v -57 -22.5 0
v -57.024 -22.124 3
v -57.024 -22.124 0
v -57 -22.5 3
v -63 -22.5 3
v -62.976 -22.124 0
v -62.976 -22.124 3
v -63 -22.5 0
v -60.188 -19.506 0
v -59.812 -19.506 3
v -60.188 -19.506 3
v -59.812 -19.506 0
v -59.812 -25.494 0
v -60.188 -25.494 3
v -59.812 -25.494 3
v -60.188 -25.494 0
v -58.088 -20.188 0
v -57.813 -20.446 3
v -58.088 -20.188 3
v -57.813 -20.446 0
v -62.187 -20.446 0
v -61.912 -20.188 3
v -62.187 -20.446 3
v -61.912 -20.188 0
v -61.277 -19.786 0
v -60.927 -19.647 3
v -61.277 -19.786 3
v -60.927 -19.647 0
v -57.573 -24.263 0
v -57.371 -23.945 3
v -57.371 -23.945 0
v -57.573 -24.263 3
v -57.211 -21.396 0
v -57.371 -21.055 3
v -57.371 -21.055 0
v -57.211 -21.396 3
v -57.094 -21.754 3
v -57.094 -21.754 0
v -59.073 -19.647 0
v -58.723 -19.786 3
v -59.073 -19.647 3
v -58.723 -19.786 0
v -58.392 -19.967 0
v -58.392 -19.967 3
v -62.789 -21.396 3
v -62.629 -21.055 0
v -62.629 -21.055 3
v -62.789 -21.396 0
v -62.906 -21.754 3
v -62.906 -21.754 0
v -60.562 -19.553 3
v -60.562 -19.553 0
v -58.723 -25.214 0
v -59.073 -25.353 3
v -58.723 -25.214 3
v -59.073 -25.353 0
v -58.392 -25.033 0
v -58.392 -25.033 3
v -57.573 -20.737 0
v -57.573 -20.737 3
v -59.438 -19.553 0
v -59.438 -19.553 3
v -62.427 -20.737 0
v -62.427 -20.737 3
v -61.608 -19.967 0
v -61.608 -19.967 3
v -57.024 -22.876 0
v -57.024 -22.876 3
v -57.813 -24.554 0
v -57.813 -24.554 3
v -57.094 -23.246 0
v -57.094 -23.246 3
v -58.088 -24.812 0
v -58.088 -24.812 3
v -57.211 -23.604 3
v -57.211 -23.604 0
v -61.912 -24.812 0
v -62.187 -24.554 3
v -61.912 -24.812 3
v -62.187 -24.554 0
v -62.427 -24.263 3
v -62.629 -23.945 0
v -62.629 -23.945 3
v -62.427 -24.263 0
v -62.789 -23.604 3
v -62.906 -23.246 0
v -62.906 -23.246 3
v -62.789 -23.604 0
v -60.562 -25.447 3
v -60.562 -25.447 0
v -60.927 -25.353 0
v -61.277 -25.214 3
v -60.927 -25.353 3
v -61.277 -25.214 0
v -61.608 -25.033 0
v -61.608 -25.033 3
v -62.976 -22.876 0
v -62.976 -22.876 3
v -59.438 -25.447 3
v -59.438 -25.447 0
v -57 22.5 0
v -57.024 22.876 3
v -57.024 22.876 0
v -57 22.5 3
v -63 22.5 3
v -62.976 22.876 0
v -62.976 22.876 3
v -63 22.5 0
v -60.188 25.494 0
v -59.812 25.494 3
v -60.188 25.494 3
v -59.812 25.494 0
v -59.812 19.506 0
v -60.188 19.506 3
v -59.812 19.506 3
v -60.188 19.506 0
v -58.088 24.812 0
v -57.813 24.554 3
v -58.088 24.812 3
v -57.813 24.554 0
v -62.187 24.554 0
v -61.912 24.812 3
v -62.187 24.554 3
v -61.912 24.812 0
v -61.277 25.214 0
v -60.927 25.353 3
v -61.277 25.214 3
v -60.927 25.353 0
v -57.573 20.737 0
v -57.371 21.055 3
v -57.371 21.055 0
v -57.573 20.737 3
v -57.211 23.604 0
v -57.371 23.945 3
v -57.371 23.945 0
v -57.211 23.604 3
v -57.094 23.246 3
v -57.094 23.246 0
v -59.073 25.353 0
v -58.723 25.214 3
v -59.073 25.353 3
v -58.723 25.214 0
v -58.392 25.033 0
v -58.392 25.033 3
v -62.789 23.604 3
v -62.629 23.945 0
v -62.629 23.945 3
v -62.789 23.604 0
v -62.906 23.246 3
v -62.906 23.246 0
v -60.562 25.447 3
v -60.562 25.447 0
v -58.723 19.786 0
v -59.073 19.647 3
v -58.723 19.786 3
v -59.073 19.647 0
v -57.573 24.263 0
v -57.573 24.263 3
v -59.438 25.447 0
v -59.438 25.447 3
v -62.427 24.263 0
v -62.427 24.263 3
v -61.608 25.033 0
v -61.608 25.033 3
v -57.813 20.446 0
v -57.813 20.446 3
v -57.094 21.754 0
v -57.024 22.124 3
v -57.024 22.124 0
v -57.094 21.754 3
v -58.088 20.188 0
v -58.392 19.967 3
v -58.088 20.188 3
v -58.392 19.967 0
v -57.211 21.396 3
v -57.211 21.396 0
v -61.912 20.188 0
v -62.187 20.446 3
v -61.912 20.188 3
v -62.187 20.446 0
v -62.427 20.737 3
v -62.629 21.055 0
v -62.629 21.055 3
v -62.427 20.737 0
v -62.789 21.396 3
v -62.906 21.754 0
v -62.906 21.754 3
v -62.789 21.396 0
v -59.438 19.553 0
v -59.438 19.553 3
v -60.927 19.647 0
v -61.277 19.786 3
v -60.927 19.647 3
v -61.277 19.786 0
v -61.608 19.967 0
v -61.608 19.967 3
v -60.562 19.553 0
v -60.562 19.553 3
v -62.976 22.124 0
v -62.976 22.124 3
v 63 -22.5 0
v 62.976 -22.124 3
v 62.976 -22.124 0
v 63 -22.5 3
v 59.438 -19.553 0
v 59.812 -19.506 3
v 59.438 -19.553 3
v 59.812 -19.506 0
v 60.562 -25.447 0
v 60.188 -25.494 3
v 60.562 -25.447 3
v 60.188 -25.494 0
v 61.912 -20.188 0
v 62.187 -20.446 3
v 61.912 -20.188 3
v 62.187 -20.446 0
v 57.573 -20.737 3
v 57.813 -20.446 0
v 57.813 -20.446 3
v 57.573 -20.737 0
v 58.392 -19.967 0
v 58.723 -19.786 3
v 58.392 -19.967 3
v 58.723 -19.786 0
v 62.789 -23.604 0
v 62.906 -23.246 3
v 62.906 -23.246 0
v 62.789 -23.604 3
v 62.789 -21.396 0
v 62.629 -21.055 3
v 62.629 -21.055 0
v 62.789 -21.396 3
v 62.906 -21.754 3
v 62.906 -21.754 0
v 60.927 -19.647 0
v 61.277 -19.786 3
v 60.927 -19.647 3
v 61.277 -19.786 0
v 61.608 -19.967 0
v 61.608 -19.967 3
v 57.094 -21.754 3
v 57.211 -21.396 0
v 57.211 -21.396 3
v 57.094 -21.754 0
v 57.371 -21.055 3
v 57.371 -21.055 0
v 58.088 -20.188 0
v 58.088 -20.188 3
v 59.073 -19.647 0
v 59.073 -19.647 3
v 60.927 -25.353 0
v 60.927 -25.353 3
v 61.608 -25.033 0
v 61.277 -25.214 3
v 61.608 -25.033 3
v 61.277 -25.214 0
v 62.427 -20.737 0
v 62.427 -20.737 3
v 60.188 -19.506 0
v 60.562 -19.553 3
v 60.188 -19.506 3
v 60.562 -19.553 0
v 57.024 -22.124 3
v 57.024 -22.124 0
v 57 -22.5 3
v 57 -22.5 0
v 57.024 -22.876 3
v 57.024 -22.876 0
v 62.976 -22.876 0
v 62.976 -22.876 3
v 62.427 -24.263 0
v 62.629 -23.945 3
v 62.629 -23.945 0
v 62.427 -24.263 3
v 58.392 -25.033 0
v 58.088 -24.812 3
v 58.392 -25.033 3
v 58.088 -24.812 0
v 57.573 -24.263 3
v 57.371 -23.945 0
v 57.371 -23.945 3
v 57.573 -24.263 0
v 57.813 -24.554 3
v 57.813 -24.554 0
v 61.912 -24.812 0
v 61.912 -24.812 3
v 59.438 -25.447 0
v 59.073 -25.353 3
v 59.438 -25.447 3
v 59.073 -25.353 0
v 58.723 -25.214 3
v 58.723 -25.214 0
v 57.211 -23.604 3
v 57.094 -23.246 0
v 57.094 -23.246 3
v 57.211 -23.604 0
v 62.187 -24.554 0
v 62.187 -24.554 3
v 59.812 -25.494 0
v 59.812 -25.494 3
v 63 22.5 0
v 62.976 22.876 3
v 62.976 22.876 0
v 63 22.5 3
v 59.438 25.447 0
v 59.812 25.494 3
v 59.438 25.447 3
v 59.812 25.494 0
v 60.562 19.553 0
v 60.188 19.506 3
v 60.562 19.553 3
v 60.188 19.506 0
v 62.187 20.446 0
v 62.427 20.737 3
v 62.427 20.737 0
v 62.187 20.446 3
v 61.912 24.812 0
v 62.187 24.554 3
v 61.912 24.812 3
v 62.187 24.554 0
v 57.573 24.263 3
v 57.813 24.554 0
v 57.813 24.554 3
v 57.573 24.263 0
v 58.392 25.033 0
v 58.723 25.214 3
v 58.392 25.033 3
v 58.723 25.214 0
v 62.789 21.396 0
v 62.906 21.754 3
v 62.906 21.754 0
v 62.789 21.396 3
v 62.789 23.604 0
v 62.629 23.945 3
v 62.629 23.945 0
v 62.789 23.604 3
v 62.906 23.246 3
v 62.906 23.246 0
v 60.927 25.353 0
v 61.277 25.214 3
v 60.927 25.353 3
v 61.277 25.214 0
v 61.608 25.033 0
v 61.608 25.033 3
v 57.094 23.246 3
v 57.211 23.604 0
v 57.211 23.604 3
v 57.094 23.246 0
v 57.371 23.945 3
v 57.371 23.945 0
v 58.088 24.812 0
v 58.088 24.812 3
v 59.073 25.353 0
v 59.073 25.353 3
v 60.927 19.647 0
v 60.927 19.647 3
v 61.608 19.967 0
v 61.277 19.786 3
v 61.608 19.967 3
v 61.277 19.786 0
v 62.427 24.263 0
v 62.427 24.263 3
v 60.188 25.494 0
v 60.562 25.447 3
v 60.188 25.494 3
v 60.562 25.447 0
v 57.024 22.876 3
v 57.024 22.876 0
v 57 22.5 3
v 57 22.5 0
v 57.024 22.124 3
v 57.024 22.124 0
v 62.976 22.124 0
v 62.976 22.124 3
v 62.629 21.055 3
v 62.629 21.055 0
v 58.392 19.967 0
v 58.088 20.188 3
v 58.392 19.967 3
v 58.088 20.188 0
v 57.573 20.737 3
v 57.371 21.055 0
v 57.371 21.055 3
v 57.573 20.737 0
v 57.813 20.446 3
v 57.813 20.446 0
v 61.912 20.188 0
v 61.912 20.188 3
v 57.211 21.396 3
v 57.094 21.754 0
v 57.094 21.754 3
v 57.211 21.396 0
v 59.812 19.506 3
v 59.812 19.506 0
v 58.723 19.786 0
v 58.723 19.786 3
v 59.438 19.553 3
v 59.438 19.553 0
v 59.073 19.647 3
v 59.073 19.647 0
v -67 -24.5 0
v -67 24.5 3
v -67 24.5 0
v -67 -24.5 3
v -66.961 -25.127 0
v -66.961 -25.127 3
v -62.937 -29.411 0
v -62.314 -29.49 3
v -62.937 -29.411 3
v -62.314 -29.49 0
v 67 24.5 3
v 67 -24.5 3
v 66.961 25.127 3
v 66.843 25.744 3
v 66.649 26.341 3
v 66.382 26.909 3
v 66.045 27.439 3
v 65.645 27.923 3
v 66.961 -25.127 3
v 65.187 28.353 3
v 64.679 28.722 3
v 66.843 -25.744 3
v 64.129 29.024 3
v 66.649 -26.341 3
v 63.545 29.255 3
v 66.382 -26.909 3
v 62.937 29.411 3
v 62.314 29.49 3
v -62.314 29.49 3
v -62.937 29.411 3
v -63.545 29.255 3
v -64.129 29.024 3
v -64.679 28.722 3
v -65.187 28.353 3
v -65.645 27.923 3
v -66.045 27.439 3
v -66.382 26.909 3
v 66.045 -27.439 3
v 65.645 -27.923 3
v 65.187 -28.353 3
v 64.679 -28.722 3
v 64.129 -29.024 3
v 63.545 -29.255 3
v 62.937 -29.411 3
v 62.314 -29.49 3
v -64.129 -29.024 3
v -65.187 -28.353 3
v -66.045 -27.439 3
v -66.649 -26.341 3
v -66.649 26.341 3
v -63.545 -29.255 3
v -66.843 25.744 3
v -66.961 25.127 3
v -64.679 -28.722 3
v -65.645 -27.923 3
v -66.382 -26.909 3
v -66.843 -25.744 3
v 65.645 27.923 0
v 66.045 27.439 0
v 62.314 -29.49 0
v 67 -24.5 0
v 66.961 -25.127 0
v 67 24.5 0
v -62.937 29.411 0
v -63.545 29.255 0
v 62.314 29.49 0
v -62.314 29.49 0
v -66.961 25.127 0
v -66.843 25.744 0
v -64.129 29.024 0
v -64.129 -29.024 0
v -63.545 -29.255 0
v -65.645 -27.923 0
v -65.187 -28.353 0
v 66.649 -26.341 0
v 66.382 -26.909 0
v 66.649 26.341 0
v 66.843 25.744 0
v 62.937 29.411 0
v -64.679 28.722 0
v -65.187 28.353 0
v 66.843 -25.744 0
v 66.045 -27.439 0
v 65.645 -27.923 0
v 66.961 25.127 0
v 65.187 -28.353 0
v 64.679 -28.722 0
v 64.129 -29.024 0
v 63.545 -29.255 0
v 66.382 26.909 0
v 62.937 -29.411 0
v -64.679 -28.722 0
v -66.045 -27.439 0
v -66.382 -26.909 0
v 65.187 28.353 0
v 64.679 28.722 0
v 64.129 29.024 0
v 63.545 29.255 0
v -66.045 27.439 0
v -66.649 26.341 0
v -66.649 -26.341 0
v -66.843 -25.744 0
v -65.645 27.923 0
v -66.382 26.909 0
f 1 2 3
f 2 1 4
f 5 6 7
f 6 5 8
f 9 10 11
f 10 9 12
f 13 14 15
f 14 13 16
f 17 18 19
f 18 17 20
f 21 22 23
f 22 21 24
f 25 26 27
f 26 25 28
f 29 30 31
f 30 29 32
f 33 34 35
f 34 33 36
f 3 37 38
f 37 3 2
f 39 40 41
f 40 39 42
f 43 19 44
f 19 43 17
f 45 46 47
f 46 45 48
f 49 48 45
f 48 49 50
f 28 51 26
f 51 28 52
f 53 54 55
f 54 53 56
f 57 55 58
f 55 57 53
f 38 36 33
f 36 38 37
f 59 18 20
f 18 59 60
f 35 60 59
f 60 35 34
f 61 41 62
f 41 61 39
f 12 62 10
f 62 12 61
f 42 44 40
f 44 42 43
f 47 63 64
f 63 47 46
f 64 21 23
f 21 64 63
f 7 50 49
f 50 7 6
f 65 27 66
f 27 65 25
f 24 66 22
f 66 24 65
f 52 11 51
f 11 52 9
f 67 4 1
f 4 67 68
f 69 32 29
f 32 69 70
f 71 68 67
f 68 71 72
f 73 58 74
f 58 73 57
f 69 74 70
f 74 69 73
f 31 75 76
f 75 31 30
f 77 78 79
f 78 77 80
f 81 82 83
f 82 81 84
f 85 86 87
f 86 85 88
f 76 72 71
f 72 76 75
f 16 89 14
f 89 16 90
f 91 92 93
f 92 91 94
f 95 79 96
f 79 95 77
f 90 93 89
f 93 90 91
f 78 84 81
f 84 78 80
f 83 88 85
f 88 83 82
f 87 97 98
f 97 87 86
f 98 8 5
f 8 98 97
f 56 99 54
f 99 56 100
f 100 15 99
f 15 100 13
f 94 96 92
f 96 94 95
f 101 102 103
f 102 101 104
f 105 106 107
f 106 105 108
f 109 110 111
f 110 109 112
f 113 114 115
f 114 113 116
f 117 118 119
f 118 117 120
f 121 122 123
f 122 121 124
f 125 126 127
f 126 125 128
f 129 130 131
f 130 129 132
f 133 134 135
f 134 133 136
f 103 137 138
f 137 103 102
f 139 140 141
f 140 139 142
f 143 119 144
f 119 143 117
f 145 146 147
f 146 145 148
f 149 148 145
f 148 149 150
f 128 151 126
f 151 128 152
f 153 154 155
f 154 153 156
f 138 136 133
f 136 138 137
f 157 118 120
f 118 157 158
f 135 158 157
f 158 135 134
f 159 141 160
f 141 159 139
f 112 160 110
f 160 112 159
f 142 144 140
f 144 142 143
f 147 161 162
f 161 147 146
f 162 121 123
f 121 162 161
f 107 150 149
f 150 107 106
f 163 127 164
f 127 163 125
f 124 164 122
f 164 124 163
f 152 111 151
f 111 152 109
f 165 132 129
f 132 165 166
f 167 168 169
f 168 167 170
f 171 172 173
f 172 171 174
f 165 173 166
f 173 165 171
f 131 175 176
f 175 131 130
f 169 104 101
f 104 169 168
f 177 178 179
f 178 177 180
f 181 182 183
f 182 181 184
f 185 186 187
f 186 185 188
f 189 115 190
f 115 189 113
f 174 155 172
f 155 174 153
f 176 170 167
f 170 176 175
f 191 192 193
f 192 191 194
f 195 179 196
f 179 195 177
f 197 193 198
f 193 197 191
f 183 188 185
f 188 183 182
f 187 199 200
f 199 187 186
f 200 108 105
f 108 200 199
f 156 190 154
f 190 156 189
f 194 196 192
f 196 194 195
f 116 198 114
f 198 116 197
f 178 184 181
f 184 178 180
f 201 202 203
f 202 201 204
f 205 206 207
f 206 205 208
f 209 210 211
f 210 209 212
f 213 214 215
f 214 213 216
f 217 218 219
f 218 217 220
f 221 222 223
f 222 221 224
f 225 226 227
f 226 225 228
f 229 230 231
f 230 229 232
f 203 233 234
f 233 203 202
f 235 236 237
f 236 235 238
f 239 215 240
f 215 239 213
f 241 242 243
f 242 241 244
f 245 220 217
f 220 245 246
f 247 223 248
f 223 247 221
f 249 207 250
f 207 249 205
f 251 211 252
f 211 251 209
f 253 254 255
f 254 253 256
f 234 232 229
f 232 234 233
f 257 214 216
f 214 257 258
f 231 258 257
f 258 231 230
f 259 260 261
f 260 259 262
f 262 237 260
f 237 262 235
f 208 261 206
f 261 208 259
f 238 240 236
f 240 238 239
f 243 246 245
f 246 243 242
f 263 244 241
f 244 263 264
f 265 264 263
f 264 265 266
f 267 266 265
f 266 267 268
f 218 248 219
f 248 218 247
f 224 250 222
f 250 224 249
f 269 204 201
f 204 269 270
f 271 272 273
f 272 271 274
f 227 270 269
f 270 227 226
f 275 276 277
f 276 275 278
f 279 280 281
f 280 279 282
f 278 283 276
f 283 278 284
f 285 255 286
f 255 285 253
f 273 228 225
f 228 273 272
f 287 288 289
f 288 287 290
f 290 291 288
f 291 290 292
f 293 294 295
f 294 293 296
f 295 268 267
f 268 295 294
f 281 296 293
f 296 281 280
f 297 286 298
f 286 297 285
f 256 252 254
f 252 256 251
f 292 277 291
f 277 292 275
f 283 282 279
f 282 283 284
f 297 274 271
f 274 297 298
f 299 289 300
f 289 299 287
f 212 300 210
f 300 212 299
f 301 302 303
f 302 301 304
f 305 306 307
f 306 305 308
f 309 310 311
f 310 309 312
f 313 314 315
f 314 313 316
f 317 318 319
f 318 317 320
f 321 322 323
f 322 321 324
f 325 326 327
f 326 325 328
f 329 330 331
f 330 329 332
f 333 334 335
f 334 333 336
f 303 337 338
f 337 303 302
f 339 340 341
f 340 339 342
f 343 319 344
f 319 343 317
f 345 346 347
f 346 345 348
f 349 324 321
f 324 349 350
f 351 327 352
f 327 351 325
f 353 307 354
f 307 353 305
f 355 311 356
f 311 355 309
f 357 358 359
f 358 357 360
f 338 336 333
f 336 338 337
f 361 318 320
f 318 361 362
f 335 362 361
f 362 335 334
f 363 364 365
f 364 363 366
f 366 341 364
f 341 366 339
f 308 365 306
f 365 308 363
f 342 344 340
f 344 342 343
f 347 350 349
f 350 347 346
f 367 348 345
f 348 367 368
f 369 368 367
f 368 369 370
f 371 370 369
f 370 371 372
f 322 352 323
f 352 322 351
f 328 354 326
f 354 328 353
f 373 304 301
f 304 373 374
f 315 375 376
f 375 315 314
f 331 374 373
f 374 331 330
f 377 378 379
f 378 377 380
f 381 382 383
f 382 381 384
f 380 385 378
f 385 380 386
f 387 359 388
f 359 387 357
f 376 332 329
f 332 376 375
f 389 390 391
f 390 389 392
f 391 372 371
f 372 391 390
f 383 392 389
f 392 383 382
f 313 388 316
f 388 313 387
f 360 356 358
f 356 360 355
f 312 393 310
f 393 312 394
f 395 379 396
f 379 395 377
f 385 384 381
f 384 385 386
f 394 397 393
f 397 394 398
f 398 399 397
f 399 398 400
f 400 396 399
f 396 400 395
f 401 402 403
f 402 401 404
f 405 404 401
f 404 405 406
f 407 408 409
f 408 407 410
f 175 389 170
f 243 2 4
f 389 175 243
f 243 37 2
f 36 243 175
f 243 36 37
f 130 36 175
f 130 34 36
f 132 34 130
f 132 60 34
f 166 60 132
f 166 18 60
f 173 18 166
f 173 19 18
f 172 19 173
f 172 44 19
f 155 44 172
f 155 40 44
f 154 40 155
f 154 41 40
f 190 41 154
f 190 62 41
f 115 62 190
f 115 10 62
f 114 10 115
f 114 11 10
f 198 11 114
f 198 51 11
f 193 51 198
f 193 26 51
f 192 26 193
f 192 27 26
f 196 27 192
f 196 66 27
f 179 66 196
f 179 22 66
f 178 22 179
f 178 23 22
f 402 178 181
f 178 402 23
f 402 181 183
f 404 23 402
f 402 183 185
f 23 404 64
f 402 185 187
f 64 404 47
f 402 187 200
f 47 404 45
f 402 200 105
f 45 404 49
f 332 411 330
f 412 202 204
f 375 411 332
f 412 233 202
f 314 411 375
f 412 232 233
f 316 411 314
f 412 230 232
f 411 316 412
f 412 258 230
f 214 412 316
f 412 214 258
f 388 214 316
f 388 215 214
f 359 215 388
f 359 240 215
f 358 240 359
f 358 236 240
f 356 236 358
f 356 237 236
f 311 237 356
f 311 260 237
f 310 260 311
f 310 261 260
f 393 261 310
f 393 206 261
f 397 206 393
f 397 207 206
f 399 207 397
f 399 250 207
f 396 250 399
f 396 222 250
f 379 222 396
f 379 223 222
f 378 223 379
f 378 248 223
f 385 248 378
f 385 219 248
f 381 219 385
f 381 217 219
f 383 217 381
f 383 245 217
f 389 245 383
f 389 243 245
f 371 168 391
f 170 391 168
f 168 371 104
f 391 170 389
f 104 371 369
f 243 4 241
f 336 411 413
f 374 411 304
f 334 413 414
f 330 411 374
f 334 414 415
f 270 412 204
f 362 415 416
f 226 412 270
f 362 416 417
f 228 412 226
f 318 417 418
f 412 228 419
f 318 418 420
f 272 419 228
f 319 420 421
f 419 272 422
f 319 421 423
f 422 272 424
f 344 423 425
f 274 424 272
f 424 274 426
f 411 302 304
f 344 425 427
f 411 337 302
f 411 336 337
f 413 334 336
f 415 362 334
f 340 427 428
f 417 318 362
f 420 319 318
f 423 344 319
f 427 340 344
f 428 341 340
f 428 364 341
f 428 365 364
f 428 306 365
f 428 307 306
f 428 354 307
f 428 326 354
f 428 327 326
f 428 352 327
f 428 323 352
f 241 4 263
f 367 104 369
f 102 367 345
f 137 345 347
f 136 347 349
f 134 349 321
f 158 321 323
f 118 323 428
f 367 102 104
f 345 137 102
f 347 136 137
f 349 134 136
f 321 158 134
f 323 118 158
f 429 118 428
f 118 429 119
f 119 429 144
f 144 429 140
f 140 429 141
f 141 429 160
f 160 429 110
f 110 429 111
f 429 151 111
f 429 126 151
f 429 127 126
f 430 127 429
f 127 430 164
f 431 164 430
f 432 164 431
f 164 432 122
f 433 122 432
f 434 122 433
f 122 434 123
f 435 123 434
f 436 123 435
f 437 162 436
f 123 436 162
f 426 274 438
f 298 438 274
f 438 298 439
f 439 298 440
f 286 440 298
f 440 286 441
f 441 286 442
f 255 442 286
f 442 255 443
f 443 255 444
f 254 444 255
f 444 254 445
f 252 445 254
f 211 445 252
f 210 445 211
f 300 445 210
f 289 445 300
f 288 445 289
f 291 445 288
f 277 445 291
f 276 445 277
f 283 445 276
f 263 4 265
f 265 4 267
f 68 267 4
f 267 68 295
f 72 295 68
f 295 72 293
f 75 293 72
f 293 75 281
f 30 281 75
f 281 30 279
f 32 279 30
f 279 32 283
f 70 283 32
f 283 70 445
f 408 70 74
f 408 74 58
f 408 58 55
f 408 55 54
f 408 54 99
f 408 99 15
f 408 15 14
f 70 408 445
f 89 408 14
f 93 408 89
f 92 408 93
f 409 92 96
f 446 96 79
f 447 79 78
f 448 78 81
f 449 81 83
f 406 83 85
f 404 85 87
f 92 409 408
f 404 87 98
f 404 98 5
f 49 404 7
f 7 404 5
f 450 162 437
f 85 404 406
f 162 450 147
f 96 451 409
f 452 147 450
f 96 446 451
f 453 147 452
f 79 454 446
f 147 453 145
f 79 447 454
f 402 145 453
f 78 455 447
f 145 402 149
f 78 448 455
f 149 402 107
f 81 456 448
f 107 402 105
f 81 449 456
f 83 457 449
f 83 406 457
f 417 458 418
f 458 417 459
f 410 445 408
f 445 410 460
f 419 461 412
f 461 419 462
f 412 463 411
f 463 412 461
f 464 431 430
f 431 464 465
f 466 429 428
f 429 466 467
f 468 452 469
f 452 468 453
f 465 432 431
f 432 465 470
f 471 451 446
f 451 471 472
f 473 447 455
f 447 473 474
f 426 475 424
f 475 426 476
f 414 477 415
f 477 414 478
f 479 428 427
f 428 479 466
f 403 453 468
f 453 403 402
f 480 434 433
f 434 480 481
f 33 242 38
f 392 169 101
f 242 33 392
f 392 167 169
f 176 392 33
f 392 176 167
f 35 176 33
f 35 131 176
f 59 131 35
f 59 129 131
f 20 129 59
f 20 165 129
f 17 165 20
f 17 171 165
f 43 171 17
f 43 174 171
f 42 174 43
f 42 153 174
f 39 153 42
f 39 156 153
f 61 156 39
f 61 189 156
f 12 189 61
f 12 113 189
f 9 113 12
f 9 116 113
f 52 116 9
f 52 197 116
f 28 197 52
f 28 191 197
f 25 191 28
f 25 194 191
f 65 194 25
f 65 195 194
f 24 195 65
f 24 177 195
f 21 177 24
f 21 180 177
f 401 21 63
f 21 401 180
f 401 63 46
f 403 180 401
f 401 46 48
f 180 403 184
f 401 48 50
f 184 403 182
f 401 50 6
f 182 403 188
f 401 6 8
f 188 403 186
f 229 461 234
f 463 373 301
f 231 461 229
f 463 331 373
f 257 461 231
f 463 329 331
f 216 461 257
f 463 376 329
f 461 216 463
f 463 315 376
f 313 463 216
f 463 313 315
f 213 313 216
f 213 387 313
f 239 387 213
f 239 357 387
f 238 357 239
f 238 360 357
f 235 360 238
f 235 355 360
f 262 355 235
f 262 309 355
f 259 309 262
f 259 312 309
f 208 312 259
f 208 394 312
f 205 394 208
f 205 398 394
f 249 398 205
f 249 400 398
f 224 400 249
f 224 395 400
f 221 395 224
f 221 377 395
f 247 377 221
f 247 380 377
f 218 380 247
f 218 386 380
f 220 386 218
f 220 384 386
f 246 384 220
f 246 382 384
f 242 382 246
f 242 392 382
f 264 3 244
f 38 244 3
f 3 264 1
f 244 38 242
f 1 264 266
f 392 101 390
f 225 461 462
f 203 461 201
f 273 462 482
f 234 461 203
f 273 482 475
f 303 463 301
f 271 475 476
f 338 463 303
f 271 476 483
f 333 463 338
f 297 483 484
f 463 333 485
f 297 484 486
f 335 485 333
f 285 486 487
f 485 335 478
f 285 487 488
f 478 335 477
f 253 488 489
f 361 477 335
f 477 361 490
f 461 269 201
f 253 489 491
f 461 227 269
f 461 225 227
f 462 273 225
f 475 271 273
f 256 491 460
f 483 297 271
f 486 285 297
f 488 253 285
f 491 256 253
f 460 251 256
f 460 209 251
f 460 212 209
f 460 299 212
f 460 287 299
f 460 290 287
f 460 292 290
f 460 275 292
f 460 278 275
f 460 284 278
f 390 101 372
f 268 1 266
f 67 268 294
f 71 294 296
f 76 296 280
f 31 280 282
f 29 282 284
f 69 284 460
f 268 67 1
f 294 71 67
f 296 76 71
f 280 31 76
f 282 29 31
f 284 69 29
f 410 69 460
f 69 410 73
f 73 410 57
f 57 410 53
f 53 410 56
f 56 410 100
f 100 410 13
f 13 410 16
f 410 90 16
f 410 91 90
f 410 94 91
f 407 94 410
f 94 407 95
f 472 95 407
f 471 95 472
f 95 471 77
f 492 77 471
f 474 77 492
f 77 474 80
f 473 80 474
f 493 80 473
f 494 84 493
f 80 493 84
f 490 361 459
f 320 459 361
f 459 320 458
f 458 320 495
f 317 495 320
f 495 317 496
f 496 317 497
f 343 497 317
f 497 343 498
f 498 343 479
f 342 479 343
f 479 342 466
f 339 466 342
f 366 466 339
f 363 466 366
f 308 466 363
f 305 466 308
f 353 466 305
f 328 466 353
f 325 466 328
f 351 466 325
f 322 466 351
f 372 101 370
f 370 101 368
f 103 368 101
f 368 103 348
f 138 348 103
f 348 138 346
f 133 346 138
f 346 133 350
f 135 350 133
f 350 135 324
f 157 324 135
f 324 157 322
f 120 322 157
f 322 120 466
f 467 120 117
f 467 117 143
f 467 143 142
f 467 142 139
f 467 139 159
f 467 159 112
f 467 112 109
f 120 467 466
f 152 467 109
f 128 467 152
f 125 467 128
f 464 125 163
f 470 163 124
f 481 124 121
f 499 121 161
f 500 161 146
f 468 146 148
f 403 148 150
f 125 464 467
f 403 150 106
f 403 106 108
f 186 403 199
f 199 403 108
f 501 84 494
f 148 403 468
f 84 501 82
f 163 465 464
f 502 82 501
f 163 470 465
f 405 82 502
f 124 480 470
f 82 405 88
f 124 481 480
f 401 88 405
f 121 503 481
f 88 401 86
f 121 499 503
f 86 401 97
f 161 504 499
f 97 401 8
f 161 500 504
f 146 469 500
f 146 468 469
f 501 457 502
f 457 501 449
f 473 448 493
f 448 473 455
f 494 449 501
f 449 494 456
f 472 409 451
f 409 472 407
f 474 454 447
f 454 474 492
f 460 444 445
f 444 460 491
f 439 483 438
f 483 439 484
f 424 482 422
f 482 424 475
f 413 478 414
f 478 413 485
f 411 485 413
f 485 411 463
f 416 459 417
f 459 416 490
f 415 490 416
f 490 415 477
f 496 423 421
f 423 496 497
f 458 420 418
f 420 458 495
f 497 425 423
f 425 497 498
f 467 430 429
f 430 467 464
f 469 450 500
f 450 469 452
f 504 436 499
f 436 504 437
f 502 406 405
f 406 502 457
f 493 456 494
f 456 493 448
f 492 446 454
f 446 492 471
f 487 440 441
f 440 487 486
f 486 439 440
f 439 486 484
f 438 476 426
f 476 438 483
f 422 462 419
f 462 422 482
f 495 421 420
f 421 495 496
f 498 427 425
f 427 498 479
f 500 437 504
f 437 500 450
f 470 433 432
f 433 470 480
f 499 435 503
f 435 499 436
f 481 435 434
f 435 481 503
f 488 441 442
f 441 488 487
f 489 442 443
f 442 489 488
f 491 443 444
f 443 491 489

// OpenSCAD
$fn = 50;


difference() {
	union() {
		hull() {
			translate(v = [-62.0000000000, 24.5000000000, 0]) {
				cylinder(h = 3, r = 5);
			}
			translate(v = [62.0000000000, 24.5000000000, 0]) {
				cylinder(h = 3, r = 5);
			}
			translate(v = [-62.0000000000, -24.5000000000, 0]) {
				cylinder(h = 3, r = 5);
			}
			translate(v = [62.0000000000, -24.5000000000, 0]) {
				cylinder(h = 3, r = 5);
			}
		}
	}
	union() {
		translate(v = [-60.0000000000, -22.5000000000, -100.0000000000]) {
			cylinder(h = 200, r = 3.0000000000);
		}
		translate(v = [-60.0000000000, 22.5000000000, -100.0000000000]) {
			cylinder(h = 200, r = 3.0000000000);
		}
		translate(v = [60.0000000000, -22.5000000000, -100.0000000000]) {
			cylinder(h = 200, r = 3.0000000000);
		}
		translate(v = [60.0000000000, 22.5000000000, -100.0000000000]) {
			cylinder(h = 200, r = 3.0000000000);
		}
	}
}
